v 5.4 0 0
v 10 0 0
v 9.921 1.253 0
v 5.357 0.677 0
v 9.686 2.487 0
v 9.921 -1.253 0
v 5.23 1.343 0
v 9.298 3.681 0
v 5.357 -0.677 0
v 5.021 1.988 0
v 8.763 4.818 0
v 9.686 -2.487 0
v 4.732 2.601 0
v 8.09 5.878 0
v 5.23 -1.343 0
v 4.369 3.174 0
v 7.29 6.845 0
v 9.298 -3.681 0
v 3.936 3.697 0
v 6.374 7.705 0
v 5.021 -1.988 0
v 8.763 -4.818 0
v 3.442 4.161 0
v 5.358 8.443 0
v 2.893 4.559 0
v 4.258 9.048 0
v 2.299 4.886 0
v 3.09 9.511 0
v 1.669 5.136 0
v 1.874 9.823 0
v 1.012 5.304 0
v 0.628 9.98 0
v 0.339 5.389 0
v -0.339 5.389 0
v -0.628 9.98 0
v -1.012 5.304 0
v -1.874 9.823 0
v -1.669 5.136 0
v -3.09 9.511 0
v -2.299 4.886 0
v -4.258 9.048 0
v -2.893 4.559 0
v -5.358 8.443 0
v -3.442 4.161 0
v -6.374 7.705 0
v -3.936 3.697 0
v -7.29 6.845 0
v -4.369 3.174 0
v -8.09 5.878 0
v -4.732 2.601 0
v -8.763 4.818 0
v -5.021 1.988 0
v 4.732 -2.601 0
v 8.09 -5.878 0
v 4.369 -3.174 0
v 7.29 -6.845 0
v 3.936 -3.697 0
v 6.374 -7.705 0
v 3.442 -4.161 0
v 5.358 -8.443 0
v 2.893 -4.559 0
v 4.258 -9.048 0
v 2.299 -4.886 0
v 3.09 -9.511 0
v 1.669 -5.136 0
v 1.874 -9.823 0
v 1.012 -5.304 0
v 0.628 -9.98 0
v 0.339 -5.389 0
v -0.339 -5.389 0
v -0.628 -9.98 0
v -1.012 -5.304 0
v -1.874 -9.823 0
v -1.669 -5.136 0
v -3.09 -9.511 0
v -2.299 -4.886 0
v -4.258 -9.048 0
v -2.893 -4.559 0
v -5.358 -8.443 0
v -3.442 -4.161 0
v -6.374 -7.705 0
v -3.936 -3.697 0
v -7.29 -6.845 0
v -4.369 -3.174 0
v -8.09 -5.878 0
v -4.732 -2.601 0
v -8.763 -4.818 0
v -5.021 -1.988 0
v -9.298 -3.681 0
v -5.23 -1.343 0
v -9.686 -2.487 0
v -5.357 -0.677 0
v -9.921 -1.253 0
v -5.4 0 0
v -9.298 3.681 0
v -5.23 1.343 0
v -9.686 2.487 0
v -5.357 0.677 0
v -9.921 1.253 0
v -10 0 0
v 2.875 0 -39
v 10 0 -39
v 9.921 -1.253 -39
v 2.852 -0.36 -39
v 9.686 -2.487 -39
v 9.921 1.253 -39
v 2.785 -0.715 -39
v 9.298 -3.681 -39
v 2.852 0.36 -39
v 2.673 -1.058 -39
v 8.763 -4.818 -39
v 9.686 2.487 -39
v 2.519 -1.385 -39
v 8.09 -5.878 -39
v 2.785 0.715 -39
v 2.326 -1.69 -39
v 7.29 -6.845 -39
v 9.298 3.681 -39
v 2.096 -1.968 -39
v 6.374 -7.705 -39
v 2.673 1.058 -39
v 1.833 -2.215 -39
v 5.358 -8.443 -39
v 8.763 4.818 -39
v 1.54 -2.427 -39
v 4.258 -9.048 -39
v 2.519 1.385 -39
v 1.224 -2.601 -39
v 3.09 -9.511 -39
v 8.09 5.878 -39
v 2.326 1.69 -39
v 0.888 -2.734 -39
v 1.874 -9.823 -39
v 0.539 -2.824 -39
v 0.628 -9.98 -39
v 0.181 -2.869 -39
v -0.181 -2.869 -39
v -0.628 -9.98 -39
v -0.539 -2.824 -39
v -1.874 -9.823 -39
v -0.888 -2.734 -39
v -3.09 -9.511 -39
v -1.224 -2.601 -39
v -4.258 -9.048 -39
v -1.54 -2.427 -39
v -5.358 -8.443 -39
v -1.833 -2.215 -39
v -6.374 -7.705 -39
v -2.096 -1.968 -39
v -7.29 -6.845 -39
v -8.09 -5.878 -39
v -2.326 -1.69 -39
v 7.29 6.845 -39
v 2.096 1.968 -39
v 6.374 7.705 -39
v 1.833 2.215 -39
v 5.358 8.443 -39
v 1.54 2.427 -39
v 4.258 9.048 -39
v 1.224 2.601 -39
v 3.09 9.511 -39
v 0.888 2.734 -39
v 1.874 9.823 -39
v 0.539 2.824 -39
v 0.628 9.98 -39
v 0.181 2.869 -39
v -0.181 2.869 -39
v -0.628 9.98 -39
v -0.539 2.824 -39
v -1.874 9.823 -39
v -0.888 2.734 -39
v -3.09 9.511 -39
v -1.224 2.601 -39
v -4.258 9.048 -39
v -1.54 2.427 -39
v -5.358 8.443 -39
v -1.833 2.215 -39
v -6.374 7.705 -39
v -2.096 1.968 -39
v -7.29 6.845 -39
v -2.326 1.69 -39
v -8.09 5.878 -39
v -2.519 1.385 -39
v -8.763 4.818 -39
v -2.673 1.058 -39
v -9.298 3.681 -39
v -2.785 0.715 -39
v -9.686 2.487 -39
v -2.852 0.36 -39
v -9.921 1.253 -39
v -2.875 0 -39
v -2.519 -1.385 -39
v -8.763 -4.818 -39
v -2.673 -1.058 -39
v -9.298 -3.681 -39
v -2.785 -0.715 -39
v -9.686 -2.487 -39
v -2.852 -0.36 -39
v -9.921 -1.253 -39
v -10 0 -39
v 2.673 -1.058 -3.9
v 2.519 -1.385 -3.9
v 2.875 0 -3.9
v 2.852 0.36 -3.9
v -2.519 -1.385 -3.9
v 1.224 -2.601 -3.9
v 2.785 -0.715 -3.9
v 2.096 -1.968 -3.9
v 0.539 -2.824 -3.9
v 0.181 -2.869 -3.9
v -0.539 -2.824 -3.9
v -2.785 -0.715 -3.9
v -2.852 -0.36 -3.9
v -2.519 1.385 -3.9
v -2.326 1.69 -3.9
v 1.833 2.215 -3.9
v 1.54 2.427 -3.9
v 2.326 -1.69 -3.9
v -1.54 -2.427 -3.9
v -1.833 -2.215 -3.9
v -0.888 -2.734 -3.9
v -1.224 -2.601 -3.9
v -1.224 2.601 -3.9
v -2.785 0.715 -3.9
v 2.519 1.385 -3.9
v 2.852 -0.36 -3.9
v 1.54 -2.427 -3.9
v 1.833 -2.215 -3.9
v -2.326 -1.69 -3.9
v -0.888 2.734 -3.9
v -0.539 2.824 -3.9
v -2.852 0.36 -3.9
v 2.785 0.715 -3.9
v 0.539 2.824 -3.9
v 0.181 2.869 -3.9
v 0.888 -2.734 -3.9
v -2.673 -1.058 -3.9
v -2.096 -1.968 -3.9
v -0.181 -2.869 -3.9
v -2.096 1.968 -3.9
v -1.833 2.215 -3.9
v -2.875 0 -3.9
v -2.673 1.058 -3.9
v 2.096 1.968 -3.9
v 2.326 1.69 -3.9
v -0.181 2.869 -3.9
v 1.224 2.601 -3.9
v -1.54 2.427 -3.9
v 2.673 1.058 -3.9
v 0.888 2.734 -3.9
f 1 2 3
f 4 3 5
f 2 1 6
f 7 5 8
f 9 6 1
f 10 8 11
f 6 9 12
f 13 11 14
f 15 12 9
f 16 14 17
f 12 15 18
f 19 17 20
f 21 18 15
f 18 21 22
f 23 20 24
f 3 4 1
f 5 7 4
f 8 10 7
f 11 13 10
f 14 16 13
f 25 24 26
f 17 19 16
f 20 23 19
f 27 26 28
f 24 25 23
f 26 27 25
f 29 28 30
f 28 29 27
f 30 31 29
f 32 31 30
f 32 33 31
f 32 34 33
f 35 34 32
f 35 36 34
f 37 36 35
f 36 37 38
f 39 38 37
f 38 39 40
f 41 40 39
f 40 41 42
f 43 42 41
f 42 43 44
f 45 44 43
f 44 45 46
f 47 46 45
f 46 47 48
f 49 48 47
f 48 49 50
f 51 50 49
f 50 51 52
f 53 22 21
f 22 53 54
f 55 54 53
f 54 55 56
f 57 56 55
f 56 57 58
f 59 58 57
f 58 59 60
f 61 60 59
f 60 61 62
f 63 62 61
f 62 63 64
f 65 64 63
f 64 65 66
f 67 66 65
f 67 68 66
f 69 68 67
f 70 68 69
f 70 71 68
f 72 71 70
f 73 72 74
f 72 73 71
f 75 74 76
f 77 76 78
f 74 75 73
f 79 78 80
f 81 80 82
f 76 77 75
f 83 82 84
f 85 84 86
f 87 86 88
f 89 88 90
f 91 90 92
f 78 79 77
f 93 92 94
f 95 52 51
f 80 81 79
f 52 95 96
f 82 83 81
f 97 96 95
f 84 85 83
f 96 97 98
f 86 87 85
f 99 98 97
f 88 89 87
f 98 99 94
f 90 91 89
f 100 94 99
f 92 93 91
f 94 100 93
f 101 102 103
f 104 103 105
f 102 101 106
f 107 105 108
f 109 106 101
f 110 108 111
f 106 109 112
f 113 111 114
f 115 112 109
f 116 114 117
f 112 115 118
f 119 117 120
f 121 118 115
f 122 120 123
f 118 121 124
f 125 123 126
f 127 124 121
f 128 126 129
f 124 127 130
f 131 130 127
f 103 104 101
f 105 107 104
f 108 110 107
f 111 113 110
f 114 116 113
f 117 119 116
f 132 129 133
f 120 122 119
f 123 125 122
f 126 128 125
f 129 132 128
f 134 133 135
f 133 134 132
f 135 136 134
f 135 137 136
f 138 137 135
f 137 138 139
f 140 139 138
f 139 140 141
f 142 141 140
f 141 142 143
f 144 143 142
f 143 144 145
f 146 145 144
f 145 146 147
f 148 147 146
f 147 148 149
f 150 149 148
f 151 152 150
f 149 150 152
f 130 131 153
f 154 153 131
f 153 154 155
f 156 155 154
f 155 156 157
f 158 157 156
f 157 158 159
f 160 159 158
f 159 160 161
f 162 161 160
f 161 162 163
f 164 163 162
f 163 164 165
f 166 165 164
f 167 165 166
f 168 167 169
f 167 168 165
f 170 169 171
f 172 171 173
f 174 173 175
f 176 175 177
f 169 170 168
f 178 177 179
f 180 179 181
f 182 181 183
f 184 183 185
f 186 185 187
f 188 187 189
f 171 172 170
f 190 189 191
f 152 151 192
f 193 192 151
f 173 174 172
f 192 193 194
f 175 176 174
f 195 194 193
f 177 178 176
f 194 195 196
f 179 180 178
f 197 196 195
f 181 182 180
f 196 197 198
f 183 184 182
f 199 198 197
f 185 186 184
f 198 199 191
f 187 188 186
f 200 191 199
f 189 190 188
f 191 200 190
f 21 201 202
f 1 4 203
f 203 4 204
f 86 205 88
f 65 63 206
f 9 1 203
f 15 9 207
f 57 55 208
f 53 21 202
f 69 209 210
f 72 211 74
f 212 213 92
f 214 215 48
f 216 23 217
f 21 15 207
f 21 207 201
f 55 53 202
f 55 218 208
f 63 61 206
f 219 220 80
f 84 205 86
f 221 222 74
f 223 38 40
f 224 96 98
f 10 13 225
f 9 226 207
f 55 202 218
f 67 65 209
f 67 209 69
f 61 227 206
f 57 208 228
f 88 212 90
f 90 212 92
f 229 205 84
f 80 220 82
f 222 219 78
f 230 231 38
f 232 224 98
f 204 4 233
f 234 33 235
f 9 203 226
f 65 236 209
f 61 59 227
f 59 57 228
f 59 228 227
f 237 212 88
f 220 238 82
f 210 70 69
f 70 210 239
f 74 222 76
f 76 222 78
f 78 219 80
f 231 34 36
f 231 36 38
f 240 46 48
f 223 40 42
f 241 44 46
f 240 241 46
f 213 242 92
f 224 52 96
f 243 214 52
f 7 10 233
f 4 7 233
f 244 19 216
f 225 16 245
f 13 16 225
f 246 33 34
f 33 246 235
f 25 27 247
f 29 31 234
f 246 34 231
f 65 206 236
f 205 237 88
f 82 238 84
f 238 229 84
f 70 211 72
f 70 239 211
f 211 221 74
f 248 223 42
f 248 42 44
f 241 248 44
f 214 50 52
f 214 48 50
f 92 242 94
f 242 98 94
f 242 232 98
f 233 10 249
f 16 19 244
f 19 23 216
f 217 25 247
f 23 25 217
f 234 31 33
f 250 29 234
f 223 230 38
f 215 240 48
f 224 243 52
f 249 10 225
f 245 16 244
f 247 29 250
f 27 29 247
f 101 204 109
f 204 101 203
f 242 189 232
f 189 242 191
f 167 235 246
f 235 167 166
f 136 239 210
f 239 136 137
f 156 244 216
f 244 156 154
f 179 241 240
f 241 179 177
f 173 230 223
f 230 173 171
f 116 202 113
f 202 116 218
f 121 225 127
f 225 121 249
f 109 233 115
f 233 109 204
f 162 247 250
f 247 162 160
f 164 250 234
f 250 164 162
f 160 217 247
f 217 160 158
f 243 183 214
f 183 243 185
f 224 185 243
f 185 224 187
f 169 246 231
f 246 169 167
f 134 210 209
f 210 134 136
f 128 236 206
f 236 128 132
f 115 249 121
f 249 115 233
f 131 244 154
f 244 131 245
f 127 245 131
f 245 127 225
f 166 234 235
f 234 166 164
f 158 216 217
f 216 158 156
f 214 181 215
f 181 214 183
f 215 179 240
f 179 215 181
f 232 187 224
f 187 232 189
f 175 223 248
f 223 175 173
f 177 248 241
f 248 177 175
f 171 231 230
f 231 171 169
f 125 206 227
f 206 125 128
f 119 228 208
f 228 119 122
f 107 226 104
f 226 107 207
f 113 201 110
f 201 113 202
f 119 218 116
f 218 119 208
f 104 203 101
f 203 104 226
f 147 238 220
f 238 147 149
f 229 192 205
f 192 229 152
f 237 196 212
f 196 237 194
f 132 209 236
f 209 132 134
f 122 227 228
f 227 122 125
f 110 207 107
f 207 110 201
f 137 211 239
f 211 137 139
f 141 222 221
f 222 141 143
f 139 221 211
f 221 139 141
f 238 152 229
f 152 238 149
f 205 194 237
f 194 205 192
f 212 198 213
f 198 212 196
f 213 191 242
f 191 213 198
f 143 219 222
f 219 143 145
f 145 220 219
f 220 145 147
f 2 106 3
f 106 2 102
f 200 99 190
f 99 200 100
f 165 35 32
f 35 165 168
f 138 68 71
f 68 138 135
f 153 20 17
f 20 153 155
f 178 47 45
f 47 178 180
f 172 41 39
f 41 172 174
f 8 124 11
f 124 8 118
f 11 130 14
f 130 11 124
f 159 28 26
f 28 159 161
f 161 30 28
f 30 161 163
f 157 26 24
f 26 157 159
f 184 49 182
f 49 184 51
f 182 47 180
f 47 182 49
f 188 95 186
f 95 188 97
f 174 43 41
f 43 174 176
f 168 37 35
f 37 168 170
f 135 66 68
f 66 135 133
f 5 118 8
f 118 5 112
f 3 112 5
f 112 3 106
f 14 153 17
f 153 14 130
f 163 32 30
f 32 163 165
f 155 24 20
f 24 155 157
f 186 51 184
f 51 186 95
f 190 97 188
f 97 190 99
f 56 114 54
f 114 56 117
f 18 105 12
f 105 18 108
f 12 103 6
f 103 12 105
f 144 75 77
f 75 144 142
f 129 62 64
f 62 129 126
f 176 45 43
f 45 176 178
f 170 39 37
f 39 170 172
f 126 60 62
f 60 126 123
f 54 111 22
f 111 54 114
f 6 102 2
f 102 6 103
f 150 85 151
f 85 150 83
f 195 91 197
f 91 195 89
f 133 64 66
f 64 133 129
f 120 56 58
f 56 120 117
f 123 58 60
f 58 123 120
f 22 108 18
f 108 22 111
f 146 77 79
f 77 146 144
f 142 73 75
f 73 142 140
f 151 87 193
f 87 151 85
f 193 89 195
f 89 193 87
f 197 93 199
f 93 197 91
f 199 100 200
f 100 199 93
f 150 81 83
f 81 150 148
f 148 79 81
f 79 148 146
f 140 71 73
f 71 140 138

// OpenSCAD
$fn = 50;


difference() {
	union() {
		translate(v = [0, 0, -39.0000000000]) {
			cylinder(h = 39, r = 10.0000000000);
		}
		cylinder(h = 0, r = 13.0000000000);
	}
	union() {
		translate(v = [0, 0, 0]) {
			rotate(a = [0, 0, 0]) {
				difference() {
					union() {
						#translate(v = [0, 0, -39.0000000000]) {
							cylinder(h = 39, r = 2.6000000000);
						}
						#translate(v = [0, 0, -3.9000000000]) {
							cylinder(h = 3.9000000000, r1 = 2.8750000000, r2 = 5.4000000000);
						}
						#translate(v = [0, 0, -39.0000000000]) {
							cylinder(h = 39, r = 2.8750000000);
						}
						#translate(v = [0, 0, -39.0000000000]) {
							cylinder(h = 39, r = 2.6000000000);
						}
					}
					union();
				}
			}
		}
	}
}
